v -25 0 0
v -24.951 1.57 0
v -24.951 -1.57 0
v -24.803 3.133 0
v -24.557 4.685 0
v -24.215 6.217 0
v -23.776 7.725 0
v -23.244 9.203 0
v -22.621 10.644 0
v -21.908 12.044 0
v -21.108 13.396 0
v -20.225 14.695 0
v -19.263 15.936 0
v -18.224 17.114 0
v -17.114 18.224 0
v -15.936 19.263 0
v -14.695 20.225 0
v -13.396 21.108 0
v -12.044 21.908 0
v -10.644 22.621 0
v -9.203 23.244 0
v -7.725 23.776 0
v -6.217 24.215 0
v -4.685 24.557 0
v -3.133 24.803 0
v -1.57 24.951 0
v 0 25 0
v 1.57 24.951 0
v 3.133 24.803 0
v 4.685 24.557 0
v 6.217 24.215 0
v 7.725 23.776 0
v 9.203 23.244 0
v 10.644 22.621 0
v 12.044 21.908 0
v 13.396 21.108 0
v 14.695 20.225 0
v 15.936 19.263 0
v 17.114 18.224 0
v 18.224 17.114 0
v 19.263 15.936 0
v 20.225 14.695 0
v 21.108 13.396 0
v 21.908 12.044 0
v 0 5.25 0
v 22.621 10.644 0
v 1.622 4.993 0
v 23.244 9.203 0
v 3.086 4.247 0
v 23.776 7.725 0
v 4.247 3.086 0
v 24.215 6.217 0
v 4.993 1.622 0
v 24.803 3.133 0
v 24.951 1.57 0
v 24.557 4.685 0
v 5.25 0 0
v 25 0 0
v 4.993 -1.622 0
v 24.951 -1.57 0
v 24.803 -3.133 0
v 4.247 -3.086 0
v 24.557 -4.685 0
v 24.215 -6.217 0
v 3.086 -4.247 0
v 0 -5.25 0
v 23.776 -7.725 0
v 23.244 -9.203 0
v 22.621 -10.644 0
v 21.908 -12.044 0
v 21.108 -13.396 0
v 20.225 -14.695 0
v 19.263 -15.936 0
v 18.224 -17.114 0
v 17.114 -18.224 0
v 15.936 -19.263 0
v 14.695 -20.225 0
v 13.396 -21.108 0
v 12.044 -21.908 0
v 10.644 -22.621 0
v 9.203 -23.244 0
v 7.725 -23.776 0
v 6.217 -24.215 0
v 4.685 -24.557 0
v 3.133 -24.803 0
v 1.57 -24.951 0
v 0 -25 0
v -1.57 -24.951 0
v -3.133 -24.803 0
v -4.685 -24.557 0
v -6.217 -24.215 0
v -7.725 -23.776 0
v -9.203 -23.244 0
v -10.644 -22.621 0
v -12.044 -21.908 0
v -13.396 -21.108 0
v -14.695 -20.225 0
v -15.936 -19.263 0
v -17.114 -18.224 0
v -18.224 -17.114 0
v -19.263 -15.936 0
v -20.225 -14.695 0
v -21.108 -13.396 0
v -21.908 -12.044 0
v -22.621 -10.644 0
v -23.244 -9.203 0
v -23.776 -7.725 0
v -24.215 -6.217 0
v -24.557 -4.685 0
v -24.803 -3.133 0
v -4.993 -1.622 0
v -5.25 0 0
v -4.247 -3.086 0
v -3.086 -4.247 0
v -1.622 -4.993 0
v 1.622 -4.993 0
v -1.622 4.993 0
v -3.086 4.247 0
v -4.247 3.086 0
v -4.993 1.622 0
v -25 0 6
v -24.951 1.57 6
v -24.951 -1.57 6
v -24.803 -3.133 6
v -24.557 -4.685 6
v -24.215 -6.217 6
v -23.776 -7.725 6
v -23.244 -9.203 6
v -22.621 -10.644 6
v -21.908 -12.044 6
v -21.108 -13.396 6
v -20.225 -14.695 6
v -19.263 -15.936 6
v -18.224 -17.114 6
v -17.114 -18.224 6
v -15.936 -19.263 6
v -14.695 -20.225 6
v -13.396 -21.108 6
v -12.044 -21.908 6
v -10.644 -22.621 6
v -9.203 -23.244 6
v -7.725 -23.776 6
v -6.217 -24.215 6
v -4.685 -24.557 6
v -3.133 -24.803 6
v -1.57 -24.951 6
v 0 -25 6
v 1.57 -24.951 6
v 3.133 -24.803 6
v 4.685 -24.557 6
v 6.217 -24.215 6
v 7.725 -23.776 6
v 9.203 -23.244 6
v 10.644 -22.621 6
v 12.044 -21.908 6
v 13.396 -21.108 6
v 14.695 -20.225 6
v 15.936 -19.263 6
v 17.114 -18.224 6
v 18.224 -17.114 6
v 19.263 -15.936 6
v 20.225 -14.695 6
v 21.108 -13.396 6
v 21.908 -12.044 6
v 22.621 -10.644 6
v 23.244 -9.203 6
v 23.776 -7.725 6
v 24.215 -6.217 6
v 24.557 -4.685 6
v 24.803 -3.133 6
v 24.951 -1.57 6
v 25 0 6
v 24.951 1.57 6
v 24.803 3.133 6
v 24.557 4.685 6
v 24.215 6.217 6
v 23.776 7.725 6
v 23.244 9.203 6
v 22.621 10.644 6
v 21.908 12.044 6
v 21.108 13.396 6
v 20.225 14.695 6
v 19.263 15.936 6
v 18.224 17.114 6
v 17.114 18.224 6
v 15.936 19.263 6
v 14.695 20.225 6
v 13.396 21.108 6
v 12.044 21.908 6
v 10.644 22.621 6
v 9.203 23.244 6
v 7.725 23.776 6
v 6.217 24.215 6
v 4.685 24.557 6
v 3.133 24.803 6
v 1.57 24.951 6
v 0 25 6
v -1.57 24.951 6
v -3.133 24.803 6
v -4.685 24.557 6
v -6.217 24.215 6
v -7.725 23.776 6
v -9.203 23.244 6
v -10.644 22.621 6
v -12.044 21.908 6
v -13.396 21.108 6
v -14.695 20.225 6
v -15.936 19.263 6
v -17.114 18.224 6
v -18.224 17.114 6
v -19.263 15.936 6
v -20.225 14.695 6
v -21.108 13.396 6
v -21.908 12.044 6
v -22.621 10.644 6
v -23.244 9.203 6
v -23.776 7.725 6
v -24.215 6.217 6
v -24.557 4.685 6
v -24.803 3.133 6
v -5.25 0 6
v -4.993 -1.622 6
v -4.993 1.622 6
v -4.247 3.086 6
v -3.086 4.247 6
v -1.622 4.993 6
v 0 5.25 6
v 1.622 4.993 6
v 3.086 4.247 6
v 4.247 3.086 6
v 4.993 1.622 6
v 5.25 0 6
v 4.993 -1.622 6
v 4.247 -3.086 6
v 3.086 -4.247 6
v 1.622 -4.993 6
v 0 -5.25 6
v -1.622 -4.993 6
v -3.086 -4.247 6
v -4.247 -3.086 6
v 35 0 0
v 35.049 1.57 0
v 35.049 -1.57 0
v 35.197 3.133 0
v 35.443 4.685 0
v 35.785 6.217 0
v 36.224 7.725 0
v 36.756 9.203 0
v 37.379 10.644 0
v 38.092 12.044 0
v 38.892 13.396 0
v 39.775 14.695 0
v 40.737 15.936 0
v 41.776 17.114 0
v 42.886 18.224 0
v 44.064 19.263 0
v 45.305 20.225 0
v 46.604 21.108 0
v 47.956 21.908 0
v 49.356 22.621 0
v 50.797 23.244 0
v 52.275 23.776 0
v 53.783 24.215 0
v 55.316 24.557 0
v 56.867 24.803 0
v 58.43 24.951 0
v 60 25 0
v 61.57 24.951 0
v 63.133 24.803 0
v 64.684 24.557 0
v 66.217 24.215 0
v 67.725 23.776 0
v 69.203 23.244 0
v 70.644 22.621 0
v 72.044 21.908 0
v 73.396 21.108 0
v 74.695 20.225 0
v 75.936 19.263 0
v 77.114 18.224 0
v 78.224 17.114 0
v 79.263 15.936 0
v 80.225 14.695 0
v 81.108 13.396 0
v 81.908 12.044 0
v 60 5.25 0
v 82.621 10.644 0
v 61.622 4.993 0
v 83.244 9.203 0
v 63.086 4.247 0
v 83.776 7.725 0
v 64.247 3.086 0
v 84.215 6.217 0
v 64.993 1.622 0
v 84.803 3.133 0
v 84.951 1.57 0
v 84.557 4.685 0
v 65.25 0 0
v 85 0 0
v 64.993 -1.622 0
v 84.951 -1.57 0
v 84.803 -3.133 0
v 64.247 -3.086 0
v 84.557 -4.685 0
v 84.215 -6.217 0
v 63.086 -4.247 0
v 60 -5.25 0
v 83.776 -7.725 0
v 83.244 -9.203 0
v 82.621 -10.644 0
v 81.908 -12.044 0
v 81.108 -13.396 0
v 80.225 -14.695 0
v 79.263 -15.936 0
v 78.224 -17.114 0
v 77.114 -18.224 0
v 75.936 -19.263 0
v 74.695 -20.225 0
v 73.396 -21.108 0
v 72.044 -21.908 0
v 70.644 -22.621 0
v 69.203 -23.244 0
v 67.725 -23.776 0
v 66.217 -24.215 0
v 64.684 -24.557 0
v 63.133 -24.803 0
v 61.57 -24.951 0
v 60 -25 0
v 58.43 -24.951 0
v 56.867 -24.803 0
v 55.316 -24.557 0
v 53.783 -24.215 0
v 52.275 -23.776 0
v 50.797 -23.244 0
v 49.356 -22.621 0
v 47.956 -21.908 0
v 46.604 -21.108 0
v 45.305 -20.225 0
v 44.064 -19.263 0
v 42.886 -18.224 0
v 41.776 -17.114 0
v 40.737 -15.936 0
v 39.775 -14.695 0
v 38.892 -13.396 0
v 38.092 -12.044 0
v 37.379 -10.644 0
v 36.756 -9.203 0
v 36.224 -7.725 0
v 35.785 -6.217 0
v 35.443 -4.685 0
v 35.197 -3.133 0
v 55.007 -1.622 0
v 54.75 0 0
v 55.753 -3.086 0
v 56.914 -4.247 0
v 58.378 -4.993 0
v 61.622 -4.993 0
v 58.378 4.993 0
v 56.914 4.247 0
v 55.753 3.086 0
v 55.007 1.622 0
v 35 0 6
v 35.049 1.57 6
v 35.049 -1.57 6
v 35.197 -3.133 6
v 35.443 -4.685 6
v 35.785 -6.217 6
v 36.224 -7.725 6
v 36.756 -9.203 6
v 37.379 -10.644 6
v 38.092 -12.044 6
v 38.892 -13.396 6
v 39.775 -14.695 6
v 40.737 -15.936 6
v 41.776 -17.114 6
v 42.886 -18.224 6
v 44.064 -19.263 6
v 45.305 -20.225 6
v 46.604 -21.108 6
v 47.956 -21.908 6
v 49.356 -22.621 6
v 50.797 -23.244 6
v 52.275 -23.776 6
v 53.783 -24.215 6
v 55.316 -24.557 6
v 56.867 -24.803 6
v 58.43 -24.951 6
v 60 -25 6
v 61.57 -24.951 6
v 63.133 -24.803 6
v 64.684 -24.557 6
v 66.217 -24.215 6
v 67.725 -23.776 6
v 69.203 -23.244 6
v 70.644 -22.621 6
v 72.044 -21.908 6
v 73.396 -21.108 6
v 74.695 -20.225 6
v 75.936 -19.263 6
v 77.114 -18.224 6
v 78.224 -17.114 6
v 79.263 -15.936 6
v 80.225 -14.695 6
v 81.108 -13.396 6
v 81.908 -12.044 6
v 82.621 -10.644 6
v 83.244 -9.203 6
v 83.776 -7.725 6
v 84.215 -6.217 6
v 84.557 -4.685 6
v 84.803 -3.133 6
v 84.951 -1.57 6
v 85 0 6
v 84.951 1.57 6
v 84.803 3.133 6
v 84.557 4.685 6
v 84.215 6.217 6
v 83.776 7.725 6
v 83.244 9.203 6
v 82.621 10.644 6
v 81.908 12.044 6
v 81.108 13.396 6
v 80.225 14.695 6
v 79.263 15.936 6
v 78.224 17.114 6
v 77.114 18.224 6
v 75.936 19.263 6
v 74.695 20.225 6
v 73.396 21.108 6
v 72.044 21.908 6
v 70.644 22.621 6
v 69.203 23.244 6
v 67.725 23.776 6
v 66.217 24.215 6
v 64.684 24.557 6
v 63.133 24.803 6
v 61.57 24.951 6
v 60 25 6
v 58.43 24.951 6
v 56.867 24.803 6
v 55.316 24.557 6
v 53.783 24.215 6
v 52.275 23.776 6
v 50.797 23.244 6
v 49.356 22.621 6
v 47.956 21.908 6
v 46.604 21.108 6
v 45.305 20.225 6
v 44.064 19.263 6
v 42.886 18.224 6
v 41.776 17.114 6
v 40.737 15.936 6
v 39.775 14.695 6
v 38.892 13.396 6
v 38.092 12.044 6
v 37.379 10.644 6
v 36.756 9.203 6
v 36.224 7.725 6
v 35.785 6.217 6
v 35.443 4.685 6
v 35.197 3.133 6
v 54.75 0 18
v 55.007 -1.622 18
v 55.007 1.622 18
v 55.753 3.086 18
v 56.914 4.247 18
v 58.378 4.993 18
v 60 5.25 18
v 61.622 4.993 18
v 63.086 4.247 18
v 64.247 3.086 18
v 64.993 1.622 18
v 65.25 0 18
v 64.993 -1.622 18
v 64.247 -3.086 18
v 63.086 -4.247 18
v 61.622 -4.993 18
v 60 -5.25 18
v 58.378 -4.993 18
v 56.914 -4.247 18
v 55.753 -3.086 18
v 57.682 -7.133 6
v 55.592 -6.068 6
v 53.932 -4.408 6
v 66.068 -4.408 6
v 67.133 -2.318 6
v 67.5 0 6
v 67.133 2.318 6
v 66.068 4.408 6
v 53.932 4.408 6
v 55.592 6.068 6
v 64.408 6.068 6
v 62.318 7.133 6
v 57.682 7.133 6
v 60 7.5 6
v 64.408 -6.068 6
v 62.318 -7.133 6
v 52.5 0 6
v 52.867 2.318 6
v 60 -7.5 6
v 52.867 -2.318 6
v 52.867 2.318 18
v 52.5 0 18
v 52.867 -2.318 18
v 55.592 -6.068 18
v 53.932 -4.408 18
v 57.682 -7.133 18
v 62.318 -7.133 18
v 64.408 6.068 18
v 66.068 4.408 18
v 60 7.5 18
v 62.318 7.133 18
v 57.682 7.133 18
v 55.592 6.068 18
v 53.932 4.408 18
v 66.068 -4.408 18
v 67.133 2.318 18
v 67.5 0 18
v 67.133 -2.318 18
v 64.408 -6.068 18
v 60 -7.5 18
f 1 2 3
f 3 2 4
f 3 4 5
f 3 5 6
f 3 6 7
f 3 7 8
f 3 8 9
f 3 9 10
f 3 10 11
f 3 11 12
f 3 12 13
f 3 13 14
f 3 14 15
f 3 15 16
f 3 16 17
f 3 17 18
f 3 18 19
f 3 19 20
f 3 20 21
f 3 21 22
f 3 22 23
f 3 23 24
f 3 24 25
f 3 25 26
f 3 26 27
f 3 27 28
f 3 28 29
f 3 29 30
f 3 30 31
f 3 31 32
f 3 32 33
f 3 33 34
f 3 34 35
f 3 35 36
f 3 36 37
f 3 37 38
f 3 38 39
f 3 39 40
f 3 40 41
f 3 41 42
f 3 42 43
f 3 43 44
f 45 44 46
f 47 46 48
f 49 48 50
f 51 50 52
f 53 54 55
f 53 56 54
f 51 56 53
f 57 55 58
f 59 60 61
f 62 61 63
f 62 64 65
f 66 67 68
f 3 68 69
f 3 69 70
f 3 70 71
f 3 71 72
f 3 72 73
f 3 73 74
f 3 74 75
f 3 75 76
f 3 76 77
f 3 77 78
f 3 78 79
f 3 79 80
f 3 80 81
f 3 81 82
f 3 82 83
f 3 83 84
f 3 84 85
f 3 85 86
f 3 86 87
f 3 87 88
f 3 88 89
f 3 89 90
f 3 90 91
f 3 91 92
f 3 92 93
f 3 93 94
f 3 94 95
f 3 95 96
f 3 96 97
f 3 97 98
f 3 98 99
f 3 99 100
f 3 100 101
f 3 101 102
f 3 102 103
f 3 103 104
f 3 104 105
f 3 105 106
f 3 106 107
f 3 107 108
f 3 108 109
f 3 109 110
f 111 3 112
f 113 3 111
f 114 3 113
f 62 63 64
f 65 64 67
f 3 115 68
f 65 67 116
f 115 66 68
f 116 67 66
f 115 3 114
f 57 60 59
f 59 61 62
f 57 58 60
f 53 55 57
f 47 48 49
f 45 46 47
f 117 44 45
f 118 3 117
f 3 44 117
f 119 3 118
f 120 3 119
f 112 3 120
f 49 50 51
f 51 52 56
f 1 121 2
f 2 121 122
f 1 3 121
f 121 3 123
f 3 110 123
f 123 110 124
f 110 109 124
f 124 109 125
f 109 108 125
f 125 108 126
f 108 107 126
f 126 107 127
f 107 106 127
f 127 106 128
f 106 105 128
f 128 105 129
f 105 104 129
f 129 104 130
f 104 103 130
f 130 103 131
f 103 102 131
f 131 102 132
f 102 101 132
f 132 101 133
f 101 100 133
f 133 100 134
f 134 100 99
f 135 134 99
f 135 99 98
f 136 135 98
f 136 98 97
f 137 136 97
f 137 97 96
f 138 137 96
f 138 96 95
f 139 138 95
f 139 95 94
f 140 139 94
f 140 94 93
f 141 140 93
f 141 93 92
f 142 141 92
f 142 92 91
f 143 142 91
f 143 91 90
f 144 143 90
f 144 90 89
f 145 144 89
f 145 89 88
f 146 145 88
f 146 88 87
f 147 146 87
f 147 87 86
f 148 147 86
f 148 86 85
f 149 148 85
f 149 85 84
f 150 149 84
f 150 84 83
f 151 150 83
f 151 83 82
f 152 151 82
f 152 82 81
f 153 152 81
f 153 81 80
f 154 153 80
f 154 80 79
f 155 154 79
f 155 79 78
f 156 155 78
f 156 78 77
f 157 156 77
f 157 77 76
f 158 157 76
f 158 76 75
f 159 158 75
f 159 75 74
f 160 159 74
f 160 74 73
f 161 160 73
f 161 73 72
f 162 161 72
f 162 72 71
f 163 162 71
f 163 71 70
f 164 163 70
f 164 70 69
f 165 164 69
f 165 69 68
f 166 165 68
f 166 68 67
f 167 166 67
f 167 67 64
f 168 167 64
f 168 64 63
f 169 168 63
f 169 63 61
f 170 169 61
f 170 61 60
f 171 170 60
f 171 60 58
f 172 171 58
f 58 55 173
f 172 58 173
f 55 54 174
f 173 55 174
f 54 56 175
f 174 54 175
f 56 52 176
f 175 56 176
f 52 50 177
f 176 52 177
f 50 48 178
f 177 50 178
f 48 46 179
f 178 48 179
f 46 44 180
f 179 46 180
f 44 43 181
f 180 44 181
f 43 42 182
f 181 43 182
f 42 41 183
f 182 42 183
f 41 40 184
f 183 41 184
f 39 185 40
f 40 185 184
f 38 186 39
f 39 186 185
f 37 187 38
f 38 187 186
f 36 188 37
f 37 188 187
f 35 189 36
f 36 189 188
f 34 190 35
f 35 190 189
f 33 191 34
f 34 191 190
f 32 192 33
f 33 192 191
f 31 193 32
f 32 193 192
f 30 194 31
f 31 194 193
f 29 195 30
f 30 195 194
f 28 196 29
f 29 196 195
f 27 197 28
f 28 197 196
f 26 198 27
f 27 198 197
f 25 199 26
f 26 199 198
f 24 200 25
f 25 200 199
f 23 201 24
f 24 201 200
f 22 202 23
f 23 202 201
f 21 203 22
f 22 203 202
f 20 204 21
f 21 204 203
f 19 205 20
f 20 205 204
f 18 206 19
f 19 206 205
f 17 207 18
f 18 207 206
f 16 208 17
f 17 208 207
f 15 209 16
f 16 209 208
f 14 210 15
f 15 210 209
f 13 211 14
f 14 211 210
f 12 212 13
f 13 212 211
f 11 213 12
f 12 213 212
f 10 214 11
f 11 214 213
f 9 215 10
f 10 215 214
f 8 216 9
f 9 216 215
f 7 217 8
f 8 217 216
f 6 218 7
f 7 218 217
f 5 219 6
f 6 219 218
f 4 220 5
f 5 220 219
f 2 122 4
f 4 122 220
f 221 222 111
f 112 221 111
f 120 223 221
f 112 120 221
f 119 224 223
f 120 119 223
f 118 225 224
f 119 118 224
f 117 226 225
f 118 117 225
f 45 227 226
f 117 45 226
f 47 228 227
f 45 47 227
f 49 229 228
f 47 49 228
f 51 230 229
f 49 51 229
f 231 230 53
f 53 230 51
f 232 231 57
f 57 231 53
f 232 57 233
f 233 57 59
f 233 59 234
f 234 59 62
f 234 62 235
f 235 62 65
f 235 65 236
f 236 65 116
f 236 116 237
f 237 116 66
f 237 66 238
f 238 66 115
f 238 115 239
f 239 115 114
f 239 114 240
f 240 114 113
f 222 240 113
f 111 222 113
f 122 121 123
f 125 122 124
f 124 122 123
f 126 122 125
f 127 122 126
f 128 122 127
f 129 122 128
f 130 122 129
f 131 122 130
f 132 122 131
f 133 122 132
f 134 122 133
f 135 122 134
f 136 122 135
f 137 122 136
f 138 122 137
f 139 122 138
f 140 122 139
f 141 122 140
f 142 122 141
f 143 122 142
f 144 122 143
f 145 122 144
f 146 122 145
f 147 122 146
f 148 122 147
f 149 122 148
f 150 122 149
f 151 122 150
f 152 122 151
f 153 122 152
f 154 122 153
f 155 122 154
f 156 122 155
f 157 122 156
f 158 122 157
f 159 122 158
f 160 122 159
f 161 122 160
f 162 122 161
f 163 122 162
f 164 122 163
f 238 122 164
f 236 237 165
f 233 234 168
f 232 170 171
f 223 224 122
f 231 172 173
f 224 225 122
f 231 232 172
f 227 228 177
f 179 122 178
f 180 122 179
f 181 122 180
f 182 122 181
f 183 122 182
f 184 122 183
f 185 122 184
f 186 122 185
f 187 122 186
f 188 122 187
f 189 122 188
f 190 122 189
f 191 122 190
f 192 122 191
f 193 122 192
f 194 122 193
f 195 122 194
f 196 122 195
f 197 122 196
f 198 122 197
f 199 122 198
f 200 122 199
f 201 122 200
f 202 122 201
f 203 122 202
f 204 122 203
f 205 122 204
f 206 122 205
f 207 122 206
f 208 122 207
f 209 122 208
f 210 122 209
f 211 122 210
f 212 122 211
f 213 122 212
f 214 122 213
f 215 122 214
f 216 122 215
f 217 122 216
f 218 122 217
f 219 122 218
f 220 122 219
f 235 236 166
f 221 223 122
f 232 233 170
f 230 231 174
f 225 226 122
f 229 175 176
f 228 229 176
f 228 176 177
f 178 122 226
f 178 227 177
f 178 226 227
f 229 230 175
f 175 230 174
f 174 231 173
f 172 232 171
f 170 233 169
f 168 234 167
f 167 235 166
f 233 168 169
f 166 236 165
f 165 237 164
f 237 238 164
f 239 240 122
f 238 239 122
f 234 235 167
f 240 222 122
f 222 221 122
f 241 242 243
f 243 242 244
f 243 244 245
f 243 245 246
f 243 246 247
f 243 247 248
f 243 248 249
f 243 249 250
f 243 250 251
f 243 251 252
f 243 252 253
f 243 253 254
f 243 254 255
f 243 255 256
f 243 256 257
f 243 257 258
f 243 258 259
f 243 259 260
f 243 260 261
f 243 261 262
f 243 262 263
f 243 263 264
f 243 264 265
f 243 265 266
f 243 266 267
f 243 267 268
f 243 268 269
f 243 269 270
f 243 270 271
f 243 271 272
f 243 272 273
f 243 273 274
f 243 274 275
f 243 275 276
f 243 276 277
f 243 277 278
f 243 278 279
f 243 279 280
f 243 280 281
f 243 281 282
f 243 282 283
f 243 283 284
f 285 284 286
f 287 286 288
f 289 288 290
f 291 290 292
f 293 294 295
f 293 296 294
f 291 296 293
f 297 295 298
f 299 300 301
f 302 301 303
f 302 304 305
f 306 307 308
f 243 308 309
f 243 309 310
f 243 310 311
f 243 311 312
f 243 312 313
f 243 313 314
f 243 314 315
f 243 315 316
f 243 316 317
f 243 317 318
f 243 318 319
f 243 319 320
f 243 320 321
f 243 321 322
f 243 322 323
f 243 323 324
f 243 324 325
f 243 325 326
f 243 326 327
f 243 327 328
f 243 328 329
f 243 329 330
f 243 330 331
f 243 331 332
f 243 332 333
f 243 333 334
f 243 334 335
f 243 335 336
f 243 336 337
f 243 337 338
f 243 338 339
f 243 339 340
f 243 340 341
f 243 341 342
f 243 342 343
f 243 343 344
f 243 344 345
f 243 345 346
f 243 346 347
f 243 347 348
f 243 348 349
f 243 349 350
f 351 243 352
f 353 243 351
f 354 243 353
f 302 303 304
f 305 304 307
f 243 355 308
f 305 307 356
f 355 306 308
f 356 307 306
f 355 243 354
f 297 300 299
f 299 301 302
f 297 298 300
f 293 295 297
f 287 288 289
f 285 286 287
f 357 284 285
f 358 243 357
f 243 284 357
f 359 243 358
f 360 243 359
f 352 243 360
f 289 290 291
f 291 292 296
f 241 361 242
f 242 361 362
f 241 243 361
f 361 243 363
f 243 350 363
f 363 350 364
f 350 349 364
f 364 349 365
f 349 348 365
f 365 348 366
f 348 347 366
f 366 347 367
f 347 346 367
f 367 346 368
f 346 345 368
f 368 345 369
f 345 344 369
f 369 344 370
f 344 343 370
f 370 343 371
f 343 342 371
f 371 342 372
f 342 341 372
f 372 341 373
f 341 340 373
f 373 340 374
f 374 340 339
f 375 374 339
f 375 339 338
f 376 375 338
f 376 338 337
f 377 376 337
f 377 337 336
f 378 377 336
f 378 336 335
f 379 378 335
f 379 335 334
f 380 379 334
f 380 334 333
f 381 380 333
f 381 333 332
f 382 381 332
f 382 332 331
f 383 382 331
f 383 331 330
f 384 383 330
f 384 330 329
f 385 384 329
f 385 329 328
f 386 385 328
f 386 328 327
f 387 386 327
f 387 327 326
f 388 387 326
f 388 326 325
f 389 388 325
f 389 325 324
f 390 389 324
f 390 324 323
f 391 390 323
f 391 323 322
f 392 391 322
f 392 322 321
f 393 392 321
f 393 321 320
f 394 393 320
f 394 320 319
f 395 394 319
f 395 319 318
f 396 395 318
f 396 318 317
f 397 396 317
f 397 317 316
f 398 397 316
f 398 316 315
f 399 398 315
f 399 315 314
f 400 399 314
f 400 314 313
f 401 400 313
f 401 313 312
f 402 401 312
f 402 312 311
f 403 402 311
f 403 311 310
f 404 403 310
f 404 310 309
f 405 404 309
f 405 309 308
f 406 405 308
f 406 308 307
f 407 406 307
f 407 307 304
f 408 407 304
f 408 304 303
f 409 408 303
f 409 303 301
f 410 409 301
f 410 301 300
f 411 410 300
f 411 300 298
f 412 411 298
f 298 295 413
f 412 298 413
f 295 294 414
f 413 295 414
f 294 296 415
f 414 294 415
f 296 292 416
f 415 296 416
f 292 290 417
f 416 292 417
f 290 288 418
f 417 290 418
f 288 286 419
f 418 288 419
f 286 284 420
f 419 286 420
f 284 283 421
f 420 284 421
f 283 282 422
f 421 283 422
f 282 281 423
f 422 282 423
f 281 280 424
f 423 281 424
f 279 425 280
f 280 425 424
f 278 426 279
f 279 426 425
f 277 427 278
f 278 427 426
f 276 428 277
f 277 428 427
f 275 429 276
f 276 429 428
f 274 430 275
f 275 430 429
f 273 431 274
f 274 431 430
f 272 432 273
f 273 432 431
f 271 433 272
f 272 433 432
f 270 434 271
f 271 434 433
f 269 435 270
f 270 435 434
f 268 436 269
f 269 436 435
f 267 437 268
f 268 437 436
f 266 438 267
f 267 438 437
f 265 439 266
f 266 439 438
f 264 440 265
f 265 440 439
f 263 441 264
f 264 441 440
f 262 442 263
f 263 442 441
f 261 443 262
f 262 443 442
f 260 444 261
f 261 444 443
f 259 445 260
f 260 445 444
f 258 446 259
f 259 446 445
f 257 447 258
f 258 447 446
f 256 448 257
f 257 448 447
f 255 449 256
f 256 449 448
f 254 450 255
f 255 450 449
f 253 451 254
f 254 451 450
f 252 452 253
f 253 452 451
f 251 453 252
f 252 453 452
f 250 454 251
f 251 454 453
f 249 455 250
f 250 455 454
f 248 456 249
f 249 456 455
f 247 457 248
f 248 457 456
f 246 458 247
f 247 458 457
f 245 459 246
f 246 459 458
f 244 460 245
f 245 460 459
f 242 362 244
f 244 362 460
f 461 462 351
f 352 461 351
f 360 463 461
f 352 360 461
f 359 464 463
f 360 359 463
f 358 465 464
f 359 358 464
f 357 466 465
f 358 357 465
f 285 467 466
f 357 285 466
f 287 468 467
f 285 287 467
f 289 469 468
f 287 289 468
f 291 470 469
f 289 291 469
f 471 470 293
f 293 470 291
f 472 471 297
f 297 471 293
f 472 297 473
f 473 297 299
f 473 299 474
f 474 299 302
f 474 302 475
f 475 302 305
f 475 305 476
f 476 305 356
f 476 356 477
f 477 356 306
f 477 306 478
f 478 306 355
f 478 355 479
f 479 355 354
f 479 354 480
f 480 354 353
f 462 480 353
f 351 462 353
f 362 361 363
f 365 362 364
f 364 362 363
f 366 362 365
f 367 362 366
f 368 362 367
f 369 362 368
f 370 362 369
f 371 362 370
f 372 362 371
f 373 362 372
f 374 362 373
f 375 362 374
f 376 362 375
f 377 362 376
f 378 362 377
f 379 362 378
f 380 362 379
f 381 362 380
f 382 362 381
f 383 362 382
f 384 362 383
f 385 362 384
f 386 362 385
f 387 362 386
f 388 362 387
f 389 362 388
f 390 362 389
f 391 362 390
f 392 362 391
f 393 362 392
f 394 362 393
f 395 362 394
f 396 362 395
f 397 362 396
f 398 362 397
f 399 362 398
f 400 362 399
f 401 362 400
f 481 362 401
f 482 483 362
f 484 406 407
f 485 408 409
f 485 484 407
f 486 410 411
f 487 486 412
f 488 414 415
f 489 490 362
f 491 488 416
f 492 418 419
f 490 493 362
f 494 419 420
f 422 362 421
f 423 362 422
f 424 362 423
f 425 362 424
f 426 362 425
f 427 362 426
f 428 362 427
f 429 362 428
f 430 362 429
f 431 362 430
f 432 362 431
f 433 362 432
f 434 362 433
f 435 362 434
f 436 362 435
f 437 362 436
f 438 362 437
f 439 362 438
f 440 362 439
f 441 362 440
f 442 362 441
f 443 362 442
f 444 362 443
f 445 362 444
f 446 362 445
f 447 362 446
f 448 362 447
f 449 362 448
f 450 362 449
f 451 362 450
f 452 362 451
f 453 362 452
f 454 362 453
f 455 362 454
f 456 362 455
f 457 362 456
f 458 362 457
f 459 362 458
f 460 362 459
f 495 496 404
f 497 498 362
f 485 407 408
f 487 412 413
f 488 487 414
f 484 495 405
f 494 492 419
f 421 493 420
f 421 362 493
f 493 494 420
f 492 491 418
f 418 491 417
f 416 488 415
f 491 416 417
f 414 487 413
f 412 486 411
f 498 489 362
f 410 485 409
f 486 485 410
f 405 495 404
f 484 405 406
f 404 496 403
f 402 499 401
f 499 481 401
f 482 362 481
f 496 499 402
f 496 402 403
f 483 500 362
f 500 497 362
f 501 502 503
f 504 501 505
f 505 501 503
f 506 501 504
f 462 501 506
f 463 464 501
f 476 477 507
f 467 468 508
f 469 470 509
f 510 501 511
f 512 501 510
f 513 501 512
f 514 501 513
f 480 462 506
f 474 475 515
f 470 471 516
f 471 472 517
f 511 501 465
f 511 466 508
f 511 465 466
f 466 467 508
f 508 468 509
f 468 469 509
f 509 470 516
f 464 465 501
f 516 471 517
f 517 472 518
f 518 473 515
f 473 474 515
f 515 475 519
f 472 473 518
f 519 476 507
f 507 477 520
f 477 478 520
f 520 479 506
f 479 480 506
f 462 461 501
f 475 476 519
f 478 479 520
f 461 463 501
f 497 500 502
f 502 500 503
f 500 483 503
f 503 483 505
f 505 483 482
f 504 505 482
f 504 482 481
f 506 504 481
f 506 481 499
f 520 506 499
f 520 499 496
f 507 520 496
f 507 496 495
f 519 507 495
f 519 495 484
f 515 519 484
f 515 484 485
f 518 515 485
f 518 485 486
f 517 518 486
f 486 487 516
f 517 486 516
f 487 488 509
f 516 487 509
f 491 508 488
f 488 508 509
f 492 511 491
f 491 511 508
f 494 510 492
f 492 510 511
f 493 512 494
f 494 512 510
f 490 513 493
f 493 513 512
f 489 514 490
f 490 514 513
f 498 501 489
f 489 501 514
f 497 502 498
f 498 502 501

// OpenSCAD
//RUEDA con radios 
//parametros rueda

//medidas del aro externo de la rueda.
diametro=50; //diametro externo de la rueda. influye en la velocidad.
grosor=6;	// grosor del aro externo de la rueda

//medidas de los radios
//grosor_radios=8; //grosor o altura de los radios

//medidas del hub central
//diam_eje=4;  //eje central por el que pasa el tornillo de izquierdas



//medidas de los agujeros del hub
metrica_hub=3;

module rueda(gros=grosor, diam=diametro)
{
	difference(){
		
				
				//parte exterior y radios
				cylinder (r=diam/2, h=gros, $fn=100);

				cylinder (r=10.5/2, h=100, $fn=20, center=true);
				//translate([8,0,0])
				//cylinder (r=3.5/2, h=100, $fn=20, center=true);
				//translate([-8,0,0])
				//cylinder (r=3.5/2, h=100, $fn=20, center=true);
			
	}//fin diference
}




	//rueda en si
	rueda();
	
	translate([diametro +10,0,0])
	difference(){
		union(){
				rueda();
				cylinder (r=15/2, h=grosor*3, $fn=20);
		}
		cylinder (r=10.5/2, h=100, $fn=20, center=true);
	}
		

	
